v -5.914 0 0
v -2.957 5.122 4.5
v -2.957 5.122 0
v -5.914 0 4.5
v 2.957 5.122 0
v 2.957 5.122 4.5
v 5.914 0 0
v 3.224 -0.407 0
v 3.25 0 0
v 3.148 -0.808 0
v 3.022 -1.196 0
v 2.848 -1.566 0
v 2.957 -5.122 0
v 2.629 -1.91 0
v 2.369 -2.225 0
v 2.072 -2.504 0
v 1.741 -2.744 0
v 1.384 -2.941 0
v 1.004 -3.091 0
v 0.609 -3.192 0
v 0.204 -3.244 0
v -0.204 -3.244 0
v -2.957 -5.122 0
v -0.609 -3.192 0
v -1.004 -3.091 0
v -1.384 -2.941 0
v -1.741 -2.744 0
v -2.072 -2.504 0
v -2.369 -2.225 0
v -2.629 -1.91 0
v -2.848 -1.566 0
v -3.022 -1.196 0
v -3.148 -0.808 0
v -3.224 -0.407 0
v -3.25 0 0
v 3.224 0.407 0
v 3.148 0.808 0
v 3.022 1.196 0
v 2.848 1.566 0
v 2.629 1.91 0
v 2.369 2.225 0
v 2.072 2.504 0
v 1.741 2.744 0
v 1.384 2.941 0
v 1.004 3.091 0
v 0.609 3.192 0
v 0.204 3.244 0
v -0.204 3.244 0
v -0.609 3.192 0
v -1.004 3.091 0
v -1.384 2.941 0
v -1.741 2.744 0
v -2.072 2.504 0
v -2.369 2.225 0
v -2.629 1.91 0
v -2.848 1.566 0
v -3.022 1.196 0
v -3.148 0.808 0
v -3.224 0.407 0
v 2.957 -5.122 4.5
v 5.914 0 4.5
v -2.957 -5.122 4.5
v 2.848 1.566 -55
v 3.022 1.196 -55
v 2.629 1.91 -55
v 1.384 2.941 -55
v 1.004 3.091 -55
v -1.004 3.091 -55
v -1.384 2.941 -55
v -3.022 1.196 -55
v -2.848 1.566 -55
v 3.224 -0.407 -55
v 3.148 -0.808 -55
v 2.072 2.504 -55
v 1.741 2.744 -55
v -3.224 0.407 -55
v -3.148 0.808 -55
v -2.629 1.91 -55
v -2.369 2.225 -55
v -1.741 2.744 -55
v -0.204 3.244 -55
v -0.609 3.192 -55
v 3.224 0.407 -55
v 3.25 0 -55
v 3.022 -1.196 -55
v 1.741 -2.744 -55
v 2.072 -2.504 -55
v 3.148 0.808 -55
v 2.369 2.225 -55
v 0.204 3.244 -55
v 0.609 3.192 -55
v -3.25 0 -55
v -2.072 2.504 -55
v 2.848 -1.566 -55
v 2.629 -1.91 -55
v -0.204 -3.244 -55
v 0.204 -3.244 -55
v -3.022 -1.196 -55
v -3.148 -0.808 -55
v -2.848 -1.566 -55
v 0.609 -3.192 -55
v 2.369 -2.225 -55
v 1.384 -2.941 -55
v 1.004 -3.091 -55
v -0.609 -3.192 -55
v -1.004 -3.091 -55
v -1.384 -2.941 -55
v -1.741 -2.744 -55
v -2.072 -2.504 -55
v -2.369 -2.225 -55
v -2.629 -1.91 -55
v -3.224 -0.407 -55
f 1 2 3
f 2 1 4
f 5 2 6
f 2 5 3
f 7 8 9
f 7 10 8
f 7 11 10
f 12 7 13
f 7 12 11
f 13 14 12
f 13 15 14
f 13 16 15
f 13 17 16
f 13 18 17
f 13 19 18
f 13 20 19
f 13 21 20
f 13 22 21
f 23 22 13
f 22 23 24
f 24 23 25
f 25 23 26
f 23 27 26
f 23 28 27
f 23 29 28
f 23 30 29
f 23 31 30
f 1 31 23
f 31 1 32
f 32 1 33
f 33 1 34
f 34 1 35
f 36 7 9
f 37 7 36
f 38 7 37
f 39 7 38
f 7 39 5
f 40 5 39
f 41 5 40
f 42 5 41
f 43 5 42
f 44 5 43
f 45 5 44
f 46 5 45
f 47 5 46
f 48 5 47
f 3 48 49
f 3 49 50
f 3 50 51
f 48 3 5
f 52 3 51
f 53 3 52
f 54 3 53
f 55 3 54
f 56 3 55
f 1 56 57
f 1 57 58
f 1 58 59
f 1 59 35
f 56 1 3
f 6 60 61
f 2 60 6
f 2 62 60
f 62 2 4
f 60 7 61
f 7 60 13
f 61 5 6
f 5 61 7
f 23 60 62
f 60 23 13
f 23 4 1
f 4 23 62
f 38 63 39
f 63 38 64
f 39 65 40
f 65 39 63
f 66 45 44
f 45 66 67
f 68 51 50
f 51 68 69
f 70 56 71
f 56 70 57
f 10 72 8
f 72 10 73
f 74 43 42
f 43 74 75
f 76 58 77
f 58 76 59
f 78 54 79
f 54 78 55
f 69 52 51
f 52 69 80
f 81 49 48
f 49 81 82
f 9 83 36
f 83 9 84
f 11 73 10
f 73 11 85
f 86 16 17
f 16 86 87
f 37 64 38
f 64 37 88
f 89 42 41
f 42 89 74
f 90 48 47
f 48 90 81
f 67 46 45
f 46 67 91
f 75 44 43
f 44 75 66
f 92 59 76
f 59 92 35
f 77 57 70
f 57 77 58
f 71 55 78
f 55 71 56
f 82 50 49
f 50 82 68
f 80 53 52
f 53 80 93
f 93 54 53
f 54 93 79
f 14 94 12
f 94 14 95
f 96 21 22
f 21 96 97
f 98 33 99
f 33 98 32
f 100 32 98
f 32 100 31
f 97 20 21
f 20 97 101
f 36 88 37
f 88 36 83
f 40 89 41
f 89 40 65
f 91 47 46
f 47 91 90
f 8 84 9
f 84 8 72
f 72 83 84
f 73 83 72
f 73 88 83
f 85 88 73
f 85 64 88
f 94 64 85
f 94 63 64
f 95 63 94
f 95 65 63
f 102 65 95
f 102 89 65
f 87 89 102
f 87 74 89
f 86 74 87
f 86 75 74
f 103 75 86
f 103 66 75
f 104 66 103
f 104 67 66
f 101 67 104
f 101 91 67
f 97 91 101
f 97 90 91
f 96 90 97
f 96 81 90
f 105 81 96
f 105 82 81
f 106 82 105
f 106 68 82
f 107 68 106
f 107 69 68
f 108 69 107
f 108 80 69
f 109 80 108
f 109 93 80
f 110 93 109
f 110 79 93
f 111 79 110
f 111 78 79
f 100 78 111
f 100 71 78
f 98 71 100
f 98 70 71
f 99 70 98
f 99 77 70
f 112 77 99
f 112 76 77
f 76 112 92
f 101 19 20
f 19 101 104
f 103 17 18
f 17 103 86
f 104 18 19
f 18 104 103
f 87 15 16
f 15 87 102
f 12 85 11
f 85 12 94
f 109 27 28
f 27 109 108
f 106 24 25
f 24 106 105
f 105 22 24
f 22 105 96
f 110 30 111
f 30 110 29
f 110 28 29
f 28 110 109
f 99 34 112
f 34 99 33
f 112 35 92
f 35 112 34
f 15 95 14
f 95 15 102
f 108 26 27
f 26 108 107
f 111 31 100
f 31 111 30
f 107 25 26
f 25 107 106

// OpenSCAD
$fn = 50;


difference() {
	union() {
		translate(v = [0, 0, 0]) {
			rotate(a = [0, 0, 0]) {
				translate(v = [0, 0, 0]) {
					rotate(a = [0, 0, 0]) {
						linear_extrude(height = 4.5000000000) {
							polygon(points = [[5.9142500000, 0.0000000000], [2.9571250000, 5.1218907443], [-2.9571250000, 5.1218907443], [-5.9142500000, 0.0000000000], [-2.9571250000, -5.1218907443], [2.9571250000, -5.1218907443]]);
						}
					}
				}
			}
		}
		translate(v = [0, 0, -55]) {
			rotate(a = [0, 0, 0]) {
				cylinder(h = 55, r = 3.2500000000);
			}
		}
	}
	union();
}
